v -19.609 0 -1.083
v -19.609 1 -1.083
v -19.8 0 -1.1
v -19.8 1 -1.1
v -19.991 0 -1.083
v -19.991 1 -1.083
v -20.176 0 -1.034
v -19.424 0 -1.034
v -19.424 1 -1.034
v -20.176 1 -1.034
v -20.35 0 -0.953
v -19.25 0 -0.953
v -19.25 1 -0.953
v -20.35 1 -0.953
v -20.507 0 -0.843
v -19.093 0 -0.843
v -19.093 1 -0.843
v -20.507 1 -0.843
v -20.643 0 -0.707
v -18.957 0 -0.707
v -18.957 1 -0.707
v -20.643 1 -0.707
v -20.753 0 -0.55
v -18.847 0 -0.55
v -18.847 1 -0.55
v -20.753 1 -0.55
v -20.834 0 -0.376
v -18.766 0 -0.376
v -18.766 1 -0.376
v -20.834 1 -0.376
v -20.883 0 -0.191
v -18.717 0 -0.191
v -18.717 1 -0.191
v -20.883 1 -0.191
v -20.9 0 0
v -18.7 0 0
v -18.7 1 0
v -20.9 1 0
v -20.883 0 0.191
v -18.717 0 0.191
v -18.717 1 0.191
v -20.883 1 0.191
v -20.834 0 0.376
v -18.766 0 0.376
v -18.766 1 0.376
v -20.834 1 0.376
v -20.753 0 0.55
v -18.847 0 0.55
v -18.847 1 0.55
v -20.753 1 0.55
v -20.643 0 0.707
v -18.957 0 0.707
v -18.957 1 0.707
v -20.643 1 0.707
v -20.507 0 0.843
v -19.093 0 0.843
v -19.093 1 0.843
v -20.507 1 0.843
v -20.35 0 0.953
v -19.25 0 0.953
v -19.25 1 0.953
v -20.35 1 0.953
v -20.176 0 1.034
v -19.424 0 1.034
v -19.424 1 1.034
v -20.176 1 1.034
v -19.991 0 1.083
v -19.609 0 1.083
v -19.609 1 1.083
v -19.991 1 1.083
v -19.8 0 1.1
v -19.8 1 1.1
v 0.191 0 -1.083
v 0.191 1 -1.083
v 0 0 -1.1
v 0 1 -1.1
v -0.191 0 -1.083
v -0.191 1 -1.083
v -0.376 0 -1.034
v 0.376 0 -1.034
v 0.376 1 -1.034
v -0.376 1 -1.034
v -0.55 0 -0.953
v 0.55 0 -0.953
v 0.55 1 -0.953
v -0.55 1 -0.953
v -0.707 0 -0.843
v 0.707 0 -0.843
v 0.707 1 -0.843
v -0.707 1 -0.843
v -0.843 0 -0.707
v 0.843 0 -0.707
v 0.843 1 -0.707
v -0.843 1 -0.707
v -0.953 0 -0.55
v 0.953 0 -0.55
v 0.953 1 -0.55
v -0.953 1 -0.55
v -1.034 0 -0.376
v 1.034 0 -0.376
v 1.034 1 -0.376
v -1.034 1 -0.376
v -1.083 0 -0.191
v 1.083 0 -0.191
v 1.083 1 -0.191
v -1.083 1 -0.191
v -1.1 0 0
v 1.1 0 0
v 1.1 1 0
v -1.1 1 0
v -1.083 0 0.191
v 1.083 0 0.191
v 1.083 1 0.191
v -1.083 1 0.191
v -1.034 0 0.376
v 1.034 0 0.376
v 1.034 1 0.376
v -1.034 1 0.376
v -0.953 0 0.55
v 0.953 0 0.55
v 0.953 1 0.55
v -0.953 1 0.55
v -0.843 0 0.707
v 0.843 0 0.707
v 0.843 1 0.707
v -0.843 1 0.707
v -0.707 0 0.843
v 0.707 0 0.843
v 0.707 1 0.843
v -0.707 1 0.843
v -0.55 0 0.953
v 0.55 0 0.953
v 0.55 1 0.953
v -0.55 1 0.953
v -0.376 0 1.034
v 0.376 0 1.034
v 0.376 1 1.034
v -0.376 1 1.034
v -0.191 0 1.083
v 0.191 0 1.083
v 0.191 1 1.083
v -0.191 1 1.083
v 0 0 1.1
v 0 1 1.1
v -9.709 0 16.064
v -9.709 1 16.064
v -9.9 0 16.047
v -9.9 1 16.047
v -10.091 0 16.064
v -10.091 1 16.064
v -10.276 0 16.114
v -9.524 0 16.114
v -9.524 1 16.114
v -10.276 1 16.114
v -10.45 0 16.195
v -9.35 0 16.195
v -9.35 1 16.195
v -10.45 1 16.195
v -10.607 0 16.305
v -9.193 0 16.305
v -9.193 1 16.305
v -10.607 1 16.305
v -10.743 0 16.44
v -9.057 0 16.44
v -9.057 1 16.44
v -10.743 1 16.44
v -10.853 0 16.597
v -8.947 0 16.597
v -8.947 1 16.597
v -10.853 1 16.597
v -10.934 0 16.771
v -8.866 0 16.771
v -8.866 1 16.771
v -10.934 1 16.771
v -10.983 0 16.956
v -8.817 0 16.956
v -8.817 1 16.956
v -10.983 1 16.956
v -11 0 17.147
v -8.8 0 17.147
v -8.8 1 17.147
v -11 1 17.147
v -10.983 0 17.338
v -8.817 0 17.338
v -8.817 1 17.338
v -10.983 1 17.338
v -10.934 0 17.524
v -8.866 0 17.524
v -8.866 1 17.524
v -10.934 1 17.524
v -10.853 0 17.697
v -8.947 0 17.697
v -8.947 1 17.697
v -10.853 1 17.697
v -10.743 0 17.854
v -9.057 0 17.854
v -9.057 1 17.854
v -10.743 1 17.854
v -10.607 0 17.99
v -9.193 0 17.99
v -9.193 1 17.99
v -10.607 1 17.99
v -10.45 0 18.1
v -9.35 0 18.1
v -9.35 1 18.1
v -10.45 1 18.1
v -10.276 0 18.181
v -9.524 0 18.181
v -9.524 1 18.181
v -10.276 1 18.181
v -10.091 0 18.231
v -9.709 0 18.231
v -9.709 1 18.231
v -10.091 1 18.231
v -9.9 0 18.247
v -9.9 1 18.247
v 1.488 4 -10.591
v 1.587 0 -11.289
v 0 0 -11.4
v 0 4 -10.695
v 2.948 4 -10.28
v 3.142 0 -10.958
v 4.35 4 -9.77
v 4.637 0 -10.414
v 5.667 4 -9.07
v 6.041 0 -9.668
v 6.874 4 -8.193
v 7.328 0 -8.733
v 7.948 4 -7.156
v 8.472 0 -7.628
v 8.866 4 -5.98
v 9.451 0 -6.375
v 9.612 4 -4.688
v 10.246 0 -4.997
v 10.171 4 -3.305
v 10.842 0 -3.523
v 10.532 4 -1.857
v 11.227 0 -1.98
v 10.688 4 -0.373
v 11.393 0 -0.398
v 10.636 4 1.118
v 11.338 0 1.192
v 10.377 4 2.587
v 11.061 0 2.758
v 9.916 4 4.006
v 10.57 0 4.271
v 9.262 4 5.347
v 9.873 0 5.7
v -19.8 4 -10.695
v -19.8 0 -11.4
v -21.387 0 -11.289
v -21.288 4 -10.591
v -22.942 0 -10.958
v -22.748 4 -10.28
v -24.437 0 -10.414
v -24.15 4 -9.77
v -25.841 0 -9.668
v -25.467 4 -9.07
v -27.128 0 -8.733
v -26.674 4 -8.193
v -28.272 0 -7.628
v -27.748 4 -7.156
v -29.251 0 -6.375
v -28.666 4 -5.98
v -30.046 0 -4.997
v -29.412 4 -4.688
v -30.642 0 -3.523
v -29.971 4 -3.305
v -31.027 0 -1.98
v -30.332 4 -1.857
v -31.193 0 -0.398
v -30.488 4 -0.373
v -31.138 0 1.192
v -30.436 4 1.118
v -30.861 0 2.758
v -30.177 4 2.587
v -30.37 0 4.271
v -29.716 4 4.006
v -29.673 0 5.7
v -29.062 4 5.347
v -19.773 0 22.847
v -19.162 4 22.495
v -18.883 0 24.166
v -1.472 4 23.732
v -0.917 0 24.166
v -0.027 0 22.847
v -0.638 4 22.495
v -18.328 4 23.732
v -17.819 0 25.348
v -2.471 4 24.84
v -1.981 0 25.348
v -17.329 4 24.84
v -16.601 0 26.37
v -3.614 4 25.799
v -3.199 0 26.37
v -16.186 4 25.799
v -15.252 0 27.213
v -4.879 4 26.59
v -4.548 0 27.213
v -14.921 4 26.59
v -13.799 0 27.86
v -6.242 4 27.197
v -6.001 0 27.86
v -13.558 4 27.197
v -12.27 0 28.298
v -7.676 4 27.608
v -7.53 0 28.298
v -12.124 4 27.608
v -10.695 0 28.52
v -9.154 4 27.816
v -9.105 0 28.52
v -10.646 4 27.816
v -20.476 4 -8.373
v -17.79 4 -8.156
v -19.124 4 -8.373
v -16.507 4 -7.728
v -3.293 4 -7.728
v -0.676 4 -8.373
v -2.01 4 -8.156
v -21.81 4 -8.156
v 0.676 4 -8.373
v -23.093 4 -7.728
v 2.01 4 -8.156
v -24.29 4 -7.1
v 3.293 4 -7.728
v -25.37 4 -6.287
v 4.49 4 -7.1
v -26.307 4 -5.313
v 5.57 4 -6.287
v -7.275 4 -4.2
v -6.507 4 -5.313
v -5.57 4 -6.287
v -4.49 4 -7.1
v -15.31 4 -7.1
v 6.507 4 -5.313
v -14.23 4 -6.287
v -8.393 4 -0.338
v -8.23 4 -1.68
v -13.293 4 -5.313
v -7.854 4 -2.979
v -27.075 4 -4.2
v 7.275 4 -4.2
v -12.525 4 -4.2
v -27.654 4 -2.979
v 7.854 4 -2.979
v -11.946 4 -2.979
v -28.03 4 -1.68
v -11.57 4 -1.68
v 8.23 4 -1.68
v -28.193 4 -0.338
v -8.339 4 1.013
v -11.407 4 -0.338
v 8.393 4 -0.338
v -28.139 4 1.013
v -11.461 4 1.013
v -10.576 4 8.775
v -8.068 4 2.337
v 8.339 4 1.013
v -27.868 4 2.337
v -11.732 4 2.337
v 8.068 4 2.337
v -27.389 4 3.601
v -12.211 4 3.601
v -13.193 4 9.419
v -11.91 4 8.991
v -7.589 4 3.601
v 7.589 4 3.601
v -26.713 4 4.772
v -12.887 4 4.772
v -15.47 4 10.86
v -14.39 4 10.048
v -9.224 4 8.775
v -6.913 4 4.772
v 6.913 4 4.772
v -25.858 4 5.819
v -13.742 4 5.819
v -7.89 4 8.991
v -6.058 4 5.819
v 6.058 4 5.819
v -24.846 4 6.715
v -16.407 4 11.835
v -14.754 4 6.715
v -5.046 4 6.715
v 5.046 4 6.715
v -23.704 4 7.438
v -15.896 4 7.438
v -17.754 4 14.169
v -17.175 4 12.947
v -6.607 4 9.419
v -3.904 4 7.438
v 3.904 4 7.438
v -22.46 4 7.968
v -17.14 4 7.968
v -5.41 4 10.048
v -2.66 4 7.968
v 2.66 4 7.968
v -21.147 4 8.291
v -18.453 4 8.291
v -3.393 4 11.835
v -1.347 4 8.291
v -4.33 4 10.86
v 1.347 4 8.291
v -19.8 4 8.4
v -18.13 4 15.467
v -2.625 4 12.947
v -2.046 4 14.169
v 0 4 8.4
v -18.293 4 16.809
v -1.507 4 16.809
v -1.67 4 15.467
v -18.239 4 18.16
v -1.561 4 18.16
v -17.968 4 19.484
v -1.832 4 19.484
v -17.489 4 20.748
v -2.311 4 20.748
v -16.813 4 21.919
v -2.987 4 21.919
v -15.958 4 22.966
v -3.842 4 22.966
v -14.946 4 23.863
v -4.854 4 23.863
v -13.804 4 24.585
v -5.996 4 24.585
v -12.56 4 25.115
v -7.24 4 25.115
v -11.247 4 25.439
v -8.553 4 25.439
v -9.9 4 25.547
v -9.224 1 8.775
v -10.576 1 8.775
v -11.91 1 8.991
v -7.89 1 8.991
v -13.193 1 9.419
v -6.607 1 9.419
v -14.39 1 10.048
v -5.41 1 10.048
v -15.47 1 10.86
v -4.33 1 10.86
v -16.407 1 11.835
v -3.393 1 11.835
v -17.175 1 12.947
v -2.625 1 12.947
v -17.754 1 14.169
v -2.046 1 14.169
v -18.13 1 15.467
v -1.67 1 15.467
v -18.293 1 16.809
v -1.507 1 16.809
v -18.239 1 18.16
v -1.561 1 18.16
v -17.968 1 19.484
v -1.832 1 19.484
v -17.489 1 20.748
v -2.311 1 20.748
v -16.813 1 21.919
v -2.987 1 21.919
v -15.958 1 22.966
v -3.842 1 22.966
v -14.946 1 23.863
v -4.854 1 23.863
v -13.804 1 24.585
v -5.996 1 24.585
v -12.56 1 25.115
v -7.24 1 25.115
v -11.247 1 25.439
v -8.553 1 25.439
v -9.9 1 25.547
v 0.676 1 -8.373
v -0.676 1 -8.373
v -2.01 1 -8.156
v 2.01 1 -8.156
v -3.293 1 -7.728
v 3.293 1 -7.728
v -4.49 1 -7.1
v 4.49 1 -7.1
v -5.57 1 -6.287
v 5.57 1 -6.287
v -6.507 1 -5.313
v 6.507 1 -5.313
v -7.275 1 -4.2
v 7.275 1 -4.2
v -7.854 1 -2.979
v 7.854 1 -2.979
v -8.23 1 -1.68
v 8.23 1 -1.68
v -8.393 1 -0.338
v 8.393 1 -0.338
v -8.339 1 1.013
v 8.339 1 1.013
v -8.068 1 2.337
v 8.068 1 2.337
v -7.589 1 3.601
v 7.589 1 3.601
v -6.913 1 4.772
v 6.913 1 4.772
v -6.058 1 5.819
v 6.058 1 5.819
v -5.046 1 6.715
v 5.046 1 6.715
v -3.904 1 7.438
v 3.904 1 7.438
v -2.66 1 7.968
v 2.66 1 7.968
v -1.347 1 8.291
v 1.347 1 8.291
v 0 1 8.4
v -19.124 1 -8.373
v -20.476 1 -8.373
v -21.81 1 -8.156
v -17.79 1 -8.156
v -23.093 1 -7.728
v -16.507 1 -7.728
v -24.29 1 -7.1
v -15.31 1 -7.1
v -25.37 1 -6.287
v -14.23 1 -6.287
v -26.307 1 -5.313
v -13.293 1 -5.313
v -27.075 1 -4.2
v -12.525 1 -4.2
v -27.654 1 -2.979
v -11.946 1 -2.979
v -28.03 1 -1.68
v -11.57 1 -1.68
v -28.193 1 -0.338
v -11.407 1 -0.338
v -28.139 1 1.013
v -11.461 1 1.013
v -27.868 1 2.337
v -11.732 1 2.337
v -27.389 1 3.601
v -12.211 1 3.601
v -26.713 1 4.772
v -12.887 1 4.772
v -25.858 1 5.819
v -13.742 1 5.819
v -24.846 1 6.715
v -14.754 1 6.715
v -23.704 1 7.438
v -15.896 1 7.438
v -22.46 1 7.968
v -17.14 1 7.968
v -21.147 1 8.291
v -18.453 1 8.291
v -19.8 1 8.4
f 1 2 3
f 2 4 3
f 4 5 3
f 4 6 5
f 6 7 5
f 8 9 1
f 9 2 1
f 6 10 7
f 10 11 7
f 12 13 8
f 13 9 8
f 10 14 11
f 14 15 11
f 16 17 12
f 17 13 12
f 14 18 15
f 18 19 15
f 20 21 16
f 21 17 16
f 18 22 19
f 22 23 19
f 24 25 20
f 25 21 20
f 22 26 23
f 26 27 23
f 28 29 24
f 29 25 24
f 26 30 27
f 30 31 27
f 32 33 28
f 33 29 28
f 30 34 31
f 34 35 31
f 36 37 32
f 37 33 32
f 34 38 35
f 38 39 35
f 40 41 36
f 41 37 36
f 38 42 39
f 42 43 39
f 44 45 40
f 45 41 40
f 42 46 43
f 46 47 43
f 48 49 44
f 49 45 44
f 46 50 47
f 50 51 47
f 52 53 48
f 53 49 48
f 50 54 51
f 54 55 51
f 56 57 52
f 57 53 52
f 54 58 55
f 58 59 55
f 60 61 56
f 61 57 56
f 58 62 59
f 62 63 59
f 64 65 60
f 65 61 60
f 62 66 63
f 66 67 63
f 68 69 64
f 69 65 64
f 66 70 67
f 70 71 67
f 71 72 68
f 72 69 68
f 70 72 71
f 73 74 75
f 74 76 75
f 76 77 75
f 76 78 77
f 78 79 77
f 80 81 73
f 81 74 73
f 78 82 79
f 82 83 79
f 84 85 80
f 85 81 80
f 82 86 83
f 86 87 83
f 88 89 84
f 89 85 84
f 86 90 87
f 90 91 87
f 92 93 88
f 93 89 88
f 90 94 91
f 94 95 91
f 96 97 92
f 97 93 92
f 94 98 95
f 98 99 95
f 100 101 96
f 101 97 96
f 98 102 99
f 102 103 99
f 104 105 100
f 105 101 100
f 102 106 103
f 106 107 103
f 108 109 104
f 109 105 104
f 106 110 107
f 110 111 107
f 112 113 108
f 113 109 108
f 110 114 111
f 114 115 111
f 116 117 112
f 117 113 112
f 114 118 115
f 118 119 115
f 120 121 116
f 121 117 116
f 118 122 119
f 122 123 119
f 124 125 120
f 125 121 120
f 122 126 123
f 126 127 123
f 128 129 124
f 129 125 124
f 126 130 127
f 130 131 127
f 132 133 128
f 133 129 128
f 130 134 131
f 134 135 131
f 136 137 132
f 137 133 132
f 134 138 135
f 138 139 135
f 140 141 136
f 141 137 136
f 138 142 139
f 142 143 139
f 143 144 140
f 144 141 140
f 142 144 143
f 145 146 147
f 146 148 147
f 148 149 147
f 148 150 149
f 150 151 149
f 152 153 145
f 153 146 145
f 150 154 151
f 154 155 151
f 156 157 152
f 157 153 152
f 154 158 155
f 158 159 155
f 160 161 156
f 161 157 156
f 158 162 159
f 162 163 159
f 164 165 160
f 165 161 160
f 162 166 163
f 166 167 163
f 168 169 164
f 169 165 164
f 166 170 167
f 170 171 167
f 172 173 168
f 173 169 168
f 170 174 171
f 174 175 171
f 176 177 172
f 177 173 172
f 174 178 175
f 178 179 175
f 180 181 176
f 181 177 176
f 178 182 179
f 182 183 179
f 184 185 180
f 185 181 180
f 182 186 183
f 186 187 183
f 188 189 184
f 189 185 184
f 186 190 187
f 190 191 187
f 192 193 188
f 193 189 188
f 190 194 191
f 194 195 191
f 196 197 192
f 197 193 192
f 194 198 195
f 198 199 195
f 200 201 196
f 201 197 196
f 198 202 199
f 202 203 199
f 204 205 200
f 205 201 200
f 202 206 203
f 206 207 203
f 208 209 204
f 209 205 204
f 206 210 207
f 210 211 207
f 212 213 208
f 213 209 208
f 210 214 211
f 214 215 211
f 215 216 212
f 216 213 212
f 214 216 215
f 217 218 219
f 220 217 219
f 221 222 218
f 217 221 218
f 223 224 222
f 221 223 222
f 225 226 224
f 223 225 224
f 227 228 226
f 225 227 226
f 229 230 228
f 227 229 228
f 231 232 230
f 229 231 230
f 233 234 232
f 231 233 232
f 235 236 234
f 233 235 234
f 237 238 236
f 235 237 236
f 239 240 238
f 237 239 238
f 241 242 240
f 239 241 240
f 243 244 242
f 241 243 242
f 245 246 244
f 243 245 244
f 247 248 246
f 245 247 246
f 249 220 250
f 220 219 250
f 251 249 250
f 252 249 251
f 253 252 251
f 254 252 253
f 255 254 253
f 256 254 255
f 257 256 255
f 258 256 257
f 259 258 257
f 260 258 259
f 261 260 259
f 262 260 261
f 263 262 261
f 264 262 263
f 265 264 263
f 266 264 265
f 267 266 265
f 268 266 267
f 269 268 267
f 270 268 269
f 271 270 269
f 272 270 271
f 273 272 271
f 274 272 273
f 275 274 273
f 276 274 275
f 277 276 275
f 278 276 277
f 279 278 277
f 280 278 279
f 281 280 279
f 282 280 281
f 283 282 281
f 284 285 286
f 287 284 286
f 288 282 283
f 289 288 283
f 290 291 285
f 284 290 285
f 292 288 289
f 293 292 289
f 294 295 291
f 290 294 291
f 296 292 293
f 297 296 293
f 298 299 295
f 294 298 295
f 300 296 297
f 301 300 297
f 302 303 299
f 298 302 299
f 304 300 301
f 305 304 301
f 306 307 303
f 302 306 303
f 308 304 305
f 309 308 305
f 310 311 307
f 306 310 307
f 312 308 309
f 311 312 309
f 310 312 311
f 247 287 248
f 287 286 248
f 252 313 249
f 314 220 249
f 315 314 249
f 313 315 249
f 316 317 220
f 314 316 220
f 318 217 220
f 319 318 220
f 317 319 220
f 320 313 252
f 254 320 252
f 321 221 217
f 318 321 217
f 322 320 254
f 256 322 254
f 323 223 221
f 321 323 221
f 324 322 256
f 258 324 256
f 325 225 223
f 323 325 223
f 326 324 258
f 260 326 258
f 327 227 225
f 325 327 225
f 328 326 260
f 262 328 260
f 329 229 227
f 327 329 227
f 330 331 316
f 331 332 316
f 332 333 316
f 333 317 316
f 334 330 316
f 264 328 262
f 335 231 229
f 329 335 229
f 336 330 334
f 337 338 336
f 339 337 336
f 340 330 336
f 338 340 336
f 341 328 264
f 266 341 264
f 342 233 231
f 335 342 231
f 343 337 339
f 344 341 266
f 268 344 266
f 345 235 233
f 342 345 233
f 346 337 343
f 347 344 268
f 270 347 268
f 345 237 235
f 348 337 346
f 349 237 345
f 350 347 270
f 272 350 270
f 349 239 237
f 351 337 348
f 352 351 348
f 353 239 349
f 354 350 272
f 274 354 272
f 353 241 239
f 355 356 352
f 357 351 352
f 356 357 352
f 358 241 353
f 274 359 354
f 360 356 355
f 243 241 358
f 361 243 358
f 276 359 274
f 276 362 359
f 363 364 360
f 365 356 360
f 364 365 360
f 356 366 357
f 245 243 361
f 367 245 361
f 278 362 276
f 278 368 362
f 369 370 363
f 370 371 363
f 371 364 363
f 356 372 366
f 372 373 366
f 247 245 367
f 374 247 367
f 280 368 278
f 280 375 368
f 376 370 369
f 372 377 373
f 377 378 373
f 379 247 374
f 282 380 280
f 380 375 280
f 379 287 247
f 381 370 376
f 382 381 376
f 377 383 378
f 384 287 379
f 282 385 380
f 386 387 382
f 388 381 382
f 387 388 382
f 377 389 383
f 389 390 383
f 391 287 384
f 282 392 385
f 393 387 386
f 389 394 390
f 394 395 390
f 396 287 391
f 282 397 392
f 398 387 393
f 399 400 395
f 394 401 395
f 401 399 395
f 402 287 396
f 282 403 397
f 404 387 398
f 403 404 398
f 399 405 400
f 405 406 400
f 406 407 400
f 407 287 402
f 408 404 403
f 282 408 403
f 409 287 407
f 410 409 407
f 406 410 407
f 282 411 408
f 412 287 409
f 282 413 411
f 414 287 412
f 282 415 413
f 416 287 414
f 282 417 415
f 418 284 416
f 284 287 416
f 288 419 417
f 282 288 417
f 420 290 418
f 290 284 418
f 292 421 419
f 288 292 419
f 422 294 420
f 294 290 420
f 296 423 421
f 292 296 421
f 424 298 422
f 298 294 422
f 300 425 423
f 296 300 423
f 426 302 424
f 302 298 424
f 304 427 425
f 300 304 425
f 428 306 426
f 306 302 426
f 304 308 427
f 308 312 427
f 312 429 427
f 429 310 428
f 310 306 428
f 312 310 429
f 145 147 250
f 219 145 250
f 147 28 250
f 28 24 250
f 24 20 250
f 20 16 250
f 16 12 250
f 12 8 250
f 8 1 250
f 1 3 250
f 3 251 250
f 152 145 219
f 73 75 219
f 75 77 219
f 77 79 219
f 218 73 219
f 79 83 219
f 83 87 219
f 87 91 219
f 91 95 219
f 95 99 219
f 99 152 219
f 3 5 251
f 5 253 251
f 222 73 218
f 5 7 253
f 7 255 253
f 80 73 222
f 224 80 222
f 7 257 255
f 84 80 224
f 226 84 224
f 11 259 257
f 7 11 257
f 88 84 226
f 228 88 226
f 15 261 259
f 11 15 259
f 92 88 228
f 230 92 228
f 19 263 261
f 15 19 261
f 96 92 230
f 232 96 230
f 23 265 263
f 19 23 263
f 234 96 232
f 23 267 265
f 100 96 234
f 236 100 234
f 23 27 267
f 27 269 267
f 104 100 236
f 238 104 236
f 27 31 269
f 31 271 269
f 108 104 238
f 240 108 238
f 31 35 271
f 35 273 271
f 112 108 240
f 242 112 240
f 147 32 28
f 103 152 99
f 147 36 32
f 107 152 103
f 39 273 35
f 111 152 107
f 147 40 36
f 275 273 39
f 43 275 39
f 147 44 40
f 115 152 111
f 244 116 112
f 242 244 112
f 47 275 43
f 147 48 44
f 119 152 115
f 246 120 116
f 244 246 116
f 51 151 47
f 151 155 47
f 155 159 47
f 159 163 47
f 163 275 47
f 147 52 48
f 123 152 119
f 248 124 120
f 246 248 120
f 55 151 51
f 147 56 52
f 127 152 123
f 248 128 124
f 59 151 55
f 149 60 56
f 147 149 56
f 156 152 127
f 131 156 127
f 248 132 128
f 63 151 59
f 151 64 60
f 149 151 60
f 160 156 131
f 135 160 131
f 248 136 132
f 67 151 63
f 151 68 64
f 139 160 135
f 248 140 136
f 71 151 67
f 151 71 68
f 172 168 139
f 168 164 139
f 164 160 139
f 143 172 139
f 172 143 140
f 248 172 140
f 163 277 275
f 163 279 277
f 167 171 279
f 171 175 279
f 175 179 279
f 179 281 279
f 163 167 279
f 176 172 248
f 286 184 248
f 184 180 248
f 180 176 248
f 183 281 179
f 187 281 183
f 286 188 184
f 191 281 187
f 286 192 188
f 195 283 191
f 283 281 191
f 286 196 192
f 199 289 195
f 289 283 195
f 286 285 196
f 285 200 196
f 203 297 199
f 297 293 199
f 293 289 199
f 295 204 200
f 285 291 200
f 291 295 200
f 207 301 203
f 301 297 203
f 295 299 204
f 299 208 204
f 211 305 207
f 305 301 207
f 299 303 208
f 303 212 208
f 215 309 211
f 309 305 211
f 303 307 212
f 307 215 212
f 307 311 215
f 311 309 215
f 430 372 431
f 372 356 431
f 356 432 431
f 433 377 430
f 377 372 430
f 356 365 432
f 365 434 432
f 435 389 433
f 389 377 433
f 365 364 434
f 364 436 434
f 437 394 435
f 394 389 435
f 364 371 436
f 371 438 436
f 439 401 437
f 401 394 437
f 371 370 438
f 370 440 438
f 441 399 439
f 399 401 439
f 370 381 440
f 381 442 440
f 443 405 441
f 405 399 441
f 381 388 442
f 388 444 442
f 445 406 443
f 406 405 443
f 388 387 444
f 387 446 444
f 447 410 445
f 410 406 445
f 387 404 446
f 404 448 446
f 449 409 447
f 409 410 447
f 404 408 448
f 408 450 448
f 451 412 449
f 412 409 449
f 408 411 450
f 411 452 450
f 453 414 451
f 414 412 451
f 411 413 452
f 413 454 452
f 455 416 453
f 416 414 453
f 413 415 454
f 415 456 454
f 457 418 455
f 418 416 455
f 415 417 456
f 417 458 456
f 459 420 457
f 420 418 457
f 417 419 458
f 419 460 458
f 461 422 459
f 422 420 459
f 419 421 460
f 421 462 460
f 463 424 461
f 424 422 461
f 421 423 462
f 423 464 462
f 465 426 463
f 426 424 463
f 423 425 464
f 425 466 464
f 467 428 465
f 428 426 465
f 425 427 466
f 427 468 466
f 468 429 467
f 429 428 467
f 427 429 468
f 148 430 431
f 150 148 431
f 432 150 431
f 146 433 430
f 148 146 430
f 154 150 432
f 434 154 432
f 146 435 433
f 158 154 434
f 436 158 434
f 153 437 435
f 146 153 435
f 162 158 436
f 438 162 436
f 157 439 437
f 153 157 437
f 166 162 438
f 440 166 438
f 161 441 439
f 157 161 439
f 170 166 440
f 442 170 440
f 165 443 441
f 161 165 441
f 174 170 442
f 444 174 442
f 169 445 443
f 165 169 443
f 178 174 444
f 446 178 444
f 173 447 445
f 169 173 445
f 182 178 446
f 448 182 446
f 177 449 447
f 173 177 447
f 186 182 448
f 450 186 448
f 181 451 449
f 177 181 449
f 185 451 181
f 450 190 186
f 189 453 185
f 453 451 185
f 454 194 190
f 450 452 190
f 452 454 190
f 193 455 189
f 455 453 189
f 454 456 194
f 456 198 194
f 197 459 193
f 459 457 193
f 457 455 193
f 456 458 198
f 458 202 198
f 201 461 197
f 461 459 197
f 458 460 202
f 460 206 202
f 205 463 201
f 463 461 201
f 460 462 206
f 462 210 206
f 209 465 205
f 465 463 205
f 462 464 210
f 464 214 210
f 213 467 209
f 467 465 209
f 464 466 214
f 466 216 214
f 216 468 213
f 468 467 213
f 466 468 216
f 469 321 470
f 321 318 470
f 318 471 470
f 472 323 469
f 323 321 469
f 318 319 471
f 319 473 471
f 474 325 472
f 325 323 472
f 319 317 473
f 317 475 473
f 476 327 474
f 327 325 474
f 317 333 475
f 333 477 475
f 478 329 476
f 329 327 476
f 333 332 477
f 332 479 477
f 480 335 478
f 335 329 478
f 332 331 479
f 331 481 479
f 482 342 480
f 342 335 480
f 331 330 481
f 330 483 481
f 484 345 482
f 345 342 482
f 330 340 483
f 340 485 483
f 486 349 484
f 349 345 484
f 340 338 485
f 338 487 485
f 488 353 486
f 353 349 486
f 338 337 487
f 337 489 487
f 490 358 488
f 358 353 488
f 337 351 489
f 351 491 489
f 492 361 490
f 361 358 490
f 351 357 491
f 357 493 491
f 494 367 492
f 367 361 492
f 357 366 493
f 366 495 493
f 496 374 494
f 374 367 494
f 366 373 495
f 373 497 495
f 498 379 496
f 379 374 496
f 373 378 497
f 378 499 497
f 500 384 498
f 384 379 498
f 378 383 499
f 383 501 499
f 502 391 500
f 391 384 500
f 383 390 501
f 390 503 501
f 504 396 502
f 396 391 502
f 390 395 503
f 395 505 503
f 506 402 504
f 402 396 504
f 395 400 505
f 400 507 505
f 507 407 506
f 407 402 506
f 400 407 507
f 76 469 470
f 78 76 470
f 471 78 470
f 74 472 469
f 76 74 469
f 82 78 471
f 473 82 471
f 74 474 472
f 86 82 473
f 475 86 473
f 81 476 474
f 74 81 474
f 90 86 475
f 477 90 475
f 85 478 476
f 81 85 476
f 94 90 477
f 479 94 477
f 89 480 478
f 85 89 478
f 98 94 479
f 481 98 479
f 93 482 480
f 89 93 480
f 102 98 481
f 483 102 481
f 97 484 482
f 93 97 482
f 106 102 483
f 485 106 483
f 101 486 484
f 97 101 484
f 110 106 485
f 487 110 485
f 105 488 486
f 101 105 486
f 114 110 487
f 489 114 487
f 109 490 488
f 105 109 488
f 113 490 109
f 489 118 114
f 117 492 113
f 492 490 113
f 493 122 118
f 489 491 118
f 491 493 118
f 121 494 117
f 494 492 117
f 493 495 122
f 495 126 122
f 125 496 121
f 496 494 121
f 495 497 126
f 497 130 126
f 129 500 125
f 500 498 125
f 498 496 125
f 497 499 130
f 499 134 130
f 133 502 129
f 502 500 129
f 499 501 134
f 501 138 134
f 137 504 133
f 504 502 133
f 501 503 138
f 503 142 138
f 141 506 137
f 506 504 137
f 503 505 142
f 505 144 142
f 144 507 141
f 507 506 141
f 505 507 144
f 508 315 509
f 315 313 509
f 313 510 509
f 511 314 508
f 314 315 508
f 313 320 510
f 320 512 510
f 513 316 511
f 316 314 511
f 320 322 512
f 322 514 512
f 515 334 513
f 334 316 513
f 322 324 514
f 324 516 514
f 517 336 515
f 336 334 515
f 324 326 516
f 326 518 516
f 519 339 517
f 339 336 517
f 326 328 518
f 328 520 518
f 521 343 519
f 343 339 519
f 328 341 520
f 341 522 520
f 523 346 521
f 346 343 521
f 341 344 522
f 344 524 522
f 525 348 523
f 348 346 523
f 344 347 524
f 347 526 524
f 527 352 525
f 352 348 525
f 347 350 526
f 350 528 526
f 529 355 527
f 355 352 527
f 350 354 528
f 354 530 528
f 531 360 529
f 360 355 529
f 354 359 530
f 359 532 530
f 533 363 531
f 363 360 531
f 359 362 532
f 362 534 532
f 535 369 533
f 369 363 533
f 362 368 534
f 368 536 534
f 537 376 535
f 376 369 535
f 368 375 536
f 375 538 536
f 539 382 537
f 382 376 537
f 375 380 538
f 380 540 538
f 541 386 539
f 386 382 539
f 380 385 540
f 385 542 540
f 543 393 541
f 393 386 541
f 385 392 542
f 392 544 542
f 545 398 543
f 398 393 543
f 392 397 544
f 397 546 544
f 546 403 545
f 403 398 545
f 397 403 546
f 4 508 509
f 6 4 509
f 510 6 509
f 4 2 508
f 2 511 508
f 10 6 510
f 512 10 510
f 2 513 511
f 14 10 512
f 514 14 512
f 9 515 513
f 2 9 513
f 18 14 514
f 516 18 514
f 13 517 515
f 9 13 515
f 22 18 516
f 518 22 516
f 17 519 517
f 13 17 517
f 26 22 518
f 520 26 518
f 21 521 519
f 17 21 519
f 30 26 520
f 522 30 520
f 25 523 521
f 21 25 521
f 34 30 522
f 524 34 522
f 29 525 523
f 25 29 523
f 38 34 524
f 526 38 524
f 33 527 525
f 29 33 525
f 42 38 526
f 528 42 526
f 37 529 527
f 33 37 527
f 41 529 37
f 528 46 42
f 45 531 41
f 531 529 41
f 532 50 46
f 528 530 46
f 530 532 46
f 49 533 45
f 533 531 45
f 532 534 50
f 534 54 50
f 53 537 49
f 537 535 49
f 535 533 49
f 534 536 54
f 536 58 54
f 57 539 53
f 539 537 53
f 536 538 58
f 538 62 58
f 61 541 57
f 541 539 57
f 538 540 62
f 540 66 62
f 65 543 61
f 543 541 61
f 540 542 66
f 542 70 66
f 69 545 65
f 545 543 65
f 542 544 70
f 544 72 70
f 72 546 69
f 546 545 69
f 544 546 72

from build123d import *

# Parameters (mm, degrees)
BOSS_EXTRUDE1_DEPTH = 4
BOSS_EXTRUDE1_TAPER = 10
CUT_EXTRUDE1_START  = 4
SKETCH1_3_R         = 1.1
CUT_EXTRUDE1_DEPTH  = 4
CUT_EXTRUDE2_START  = 4
SKETCH1_4_R         = 8.4
SKETCH1_4_R_2       = 1.1
CUT_EXTRUDE2_DEPTH  = 3


with BuildPart() as part:
    # Sketch1 → Boss-Extrude1 (new body)
    with BuildSketch(Plane(origin=(0, 0, 0), x_dir=(1, 0, 0), z_dir=(0, 1, 0))):
        with BuildLine():
            Line((-29.672689603, -5.7), (-19.772689603, -22.847302995))
            ThreePointArc((-19.772689603, -22.847302995), (-9.9, -28.547302995), (-0.027310397, -22.847302995))
            Line((-0.027310397, -22.847302995), (9.872689603, -5.7))
            ThreePointArc((9.872689603, -5.7), (9.872689603, 5.7), (0, 11.4))
            Line((0, 11.4), (-19.8, 11.4))
            ThreePointArc((-19.8, 11.4), (-29.672689603, 5.7), (-29.672689603, -5.7))
        make_face()
    extrude(amount=BOSS_EXTRUDE1_DEPTH, taper=BOSS_EXTRUDE1_TAPER)

    # Sketch1<3> → Cut-Extrude1 (cut)
    with BuildSketch(Plane(origin=(0, 0, 0), x_dir=(1, 0, 0), z_dir=(0, 1, 0)).offset(CUT_EXTRUDE1_START)):
        with Locations(Location((-9.9, -17.147302995, 0), (0, 0, 270))):
            Circle(SKETCH1_3_R)
        with Locations(Location((0, 0, 0), (0, 0, 270))):
            Circle(SKETCH1_3_R)
        with Locations(Location((-19.8, 0, 0), (0, 0, 270))):
            Circle(SKETCH1_3_R)
    extrude(amount=-CUT_EXTRUDE1_DEPTH, mode=Mode.SUBTRACT)

    # Sketch1<4> → Cut-Extrude2 (cut)
    # profile 1 of 3: a face of its own
    with BuildSketch(Plane(origin=(0, 0, 0), x_dir=(1, 0, 0), z_dir=(0, 1, 0)).offset(CUT_EXTRUDE2_START)):
        with Locations(Location((-19.8, 0, 0), (0, 0, 270))):
            Circle(SKETCH1_4_R)
        with Locations(Location((-19.8, 0, 0), (0, 0, 270))):
            Circle(SKETCH1_4_R_2, mode=Mode.SUBTRACT)
    # profile 2 of 3: a face of its own
    with BuildSketch(Plane(origin=(0, 0, 0), x_dir=(1, 0, 0), z_dir=(0, 1, 0)).offset(CUT_EXTRUDE2_START)):
        with Locations(Location((-9.9, -17.147302995, 0), (0, 0, 270))):
            Circle(SKETCH1_4_R)
        with Locations(Location((-9.9, -17.147302995, 0), (0, 0, 270))):
            Circle(SKETCH1_4_R_2, mode=Mode.SUBTRACT)
    # profile 3 of 3: a face of its own
    with BuildSketch(Plane(origin=(0, 0, 0), x_dir=(1, 0, 0), z_dir=(0, 1, 0)).offset(CUT_EXTRUDE2_START)):
        with Locations(Location((0, 0, 0), (0, 0, 270))):
            Circle(SKETCH1_4_R)
        with Locations(Location((0, 0, 0), (0, 0, 270))):
            Circle(SKETCH1_4_R_2, mode=Mode.SUBTRACT)
    extrude(amount=-CUT_EXTRUDE2_DEPTH, mode=Mode.SUBTRACT)


solid = part.part
